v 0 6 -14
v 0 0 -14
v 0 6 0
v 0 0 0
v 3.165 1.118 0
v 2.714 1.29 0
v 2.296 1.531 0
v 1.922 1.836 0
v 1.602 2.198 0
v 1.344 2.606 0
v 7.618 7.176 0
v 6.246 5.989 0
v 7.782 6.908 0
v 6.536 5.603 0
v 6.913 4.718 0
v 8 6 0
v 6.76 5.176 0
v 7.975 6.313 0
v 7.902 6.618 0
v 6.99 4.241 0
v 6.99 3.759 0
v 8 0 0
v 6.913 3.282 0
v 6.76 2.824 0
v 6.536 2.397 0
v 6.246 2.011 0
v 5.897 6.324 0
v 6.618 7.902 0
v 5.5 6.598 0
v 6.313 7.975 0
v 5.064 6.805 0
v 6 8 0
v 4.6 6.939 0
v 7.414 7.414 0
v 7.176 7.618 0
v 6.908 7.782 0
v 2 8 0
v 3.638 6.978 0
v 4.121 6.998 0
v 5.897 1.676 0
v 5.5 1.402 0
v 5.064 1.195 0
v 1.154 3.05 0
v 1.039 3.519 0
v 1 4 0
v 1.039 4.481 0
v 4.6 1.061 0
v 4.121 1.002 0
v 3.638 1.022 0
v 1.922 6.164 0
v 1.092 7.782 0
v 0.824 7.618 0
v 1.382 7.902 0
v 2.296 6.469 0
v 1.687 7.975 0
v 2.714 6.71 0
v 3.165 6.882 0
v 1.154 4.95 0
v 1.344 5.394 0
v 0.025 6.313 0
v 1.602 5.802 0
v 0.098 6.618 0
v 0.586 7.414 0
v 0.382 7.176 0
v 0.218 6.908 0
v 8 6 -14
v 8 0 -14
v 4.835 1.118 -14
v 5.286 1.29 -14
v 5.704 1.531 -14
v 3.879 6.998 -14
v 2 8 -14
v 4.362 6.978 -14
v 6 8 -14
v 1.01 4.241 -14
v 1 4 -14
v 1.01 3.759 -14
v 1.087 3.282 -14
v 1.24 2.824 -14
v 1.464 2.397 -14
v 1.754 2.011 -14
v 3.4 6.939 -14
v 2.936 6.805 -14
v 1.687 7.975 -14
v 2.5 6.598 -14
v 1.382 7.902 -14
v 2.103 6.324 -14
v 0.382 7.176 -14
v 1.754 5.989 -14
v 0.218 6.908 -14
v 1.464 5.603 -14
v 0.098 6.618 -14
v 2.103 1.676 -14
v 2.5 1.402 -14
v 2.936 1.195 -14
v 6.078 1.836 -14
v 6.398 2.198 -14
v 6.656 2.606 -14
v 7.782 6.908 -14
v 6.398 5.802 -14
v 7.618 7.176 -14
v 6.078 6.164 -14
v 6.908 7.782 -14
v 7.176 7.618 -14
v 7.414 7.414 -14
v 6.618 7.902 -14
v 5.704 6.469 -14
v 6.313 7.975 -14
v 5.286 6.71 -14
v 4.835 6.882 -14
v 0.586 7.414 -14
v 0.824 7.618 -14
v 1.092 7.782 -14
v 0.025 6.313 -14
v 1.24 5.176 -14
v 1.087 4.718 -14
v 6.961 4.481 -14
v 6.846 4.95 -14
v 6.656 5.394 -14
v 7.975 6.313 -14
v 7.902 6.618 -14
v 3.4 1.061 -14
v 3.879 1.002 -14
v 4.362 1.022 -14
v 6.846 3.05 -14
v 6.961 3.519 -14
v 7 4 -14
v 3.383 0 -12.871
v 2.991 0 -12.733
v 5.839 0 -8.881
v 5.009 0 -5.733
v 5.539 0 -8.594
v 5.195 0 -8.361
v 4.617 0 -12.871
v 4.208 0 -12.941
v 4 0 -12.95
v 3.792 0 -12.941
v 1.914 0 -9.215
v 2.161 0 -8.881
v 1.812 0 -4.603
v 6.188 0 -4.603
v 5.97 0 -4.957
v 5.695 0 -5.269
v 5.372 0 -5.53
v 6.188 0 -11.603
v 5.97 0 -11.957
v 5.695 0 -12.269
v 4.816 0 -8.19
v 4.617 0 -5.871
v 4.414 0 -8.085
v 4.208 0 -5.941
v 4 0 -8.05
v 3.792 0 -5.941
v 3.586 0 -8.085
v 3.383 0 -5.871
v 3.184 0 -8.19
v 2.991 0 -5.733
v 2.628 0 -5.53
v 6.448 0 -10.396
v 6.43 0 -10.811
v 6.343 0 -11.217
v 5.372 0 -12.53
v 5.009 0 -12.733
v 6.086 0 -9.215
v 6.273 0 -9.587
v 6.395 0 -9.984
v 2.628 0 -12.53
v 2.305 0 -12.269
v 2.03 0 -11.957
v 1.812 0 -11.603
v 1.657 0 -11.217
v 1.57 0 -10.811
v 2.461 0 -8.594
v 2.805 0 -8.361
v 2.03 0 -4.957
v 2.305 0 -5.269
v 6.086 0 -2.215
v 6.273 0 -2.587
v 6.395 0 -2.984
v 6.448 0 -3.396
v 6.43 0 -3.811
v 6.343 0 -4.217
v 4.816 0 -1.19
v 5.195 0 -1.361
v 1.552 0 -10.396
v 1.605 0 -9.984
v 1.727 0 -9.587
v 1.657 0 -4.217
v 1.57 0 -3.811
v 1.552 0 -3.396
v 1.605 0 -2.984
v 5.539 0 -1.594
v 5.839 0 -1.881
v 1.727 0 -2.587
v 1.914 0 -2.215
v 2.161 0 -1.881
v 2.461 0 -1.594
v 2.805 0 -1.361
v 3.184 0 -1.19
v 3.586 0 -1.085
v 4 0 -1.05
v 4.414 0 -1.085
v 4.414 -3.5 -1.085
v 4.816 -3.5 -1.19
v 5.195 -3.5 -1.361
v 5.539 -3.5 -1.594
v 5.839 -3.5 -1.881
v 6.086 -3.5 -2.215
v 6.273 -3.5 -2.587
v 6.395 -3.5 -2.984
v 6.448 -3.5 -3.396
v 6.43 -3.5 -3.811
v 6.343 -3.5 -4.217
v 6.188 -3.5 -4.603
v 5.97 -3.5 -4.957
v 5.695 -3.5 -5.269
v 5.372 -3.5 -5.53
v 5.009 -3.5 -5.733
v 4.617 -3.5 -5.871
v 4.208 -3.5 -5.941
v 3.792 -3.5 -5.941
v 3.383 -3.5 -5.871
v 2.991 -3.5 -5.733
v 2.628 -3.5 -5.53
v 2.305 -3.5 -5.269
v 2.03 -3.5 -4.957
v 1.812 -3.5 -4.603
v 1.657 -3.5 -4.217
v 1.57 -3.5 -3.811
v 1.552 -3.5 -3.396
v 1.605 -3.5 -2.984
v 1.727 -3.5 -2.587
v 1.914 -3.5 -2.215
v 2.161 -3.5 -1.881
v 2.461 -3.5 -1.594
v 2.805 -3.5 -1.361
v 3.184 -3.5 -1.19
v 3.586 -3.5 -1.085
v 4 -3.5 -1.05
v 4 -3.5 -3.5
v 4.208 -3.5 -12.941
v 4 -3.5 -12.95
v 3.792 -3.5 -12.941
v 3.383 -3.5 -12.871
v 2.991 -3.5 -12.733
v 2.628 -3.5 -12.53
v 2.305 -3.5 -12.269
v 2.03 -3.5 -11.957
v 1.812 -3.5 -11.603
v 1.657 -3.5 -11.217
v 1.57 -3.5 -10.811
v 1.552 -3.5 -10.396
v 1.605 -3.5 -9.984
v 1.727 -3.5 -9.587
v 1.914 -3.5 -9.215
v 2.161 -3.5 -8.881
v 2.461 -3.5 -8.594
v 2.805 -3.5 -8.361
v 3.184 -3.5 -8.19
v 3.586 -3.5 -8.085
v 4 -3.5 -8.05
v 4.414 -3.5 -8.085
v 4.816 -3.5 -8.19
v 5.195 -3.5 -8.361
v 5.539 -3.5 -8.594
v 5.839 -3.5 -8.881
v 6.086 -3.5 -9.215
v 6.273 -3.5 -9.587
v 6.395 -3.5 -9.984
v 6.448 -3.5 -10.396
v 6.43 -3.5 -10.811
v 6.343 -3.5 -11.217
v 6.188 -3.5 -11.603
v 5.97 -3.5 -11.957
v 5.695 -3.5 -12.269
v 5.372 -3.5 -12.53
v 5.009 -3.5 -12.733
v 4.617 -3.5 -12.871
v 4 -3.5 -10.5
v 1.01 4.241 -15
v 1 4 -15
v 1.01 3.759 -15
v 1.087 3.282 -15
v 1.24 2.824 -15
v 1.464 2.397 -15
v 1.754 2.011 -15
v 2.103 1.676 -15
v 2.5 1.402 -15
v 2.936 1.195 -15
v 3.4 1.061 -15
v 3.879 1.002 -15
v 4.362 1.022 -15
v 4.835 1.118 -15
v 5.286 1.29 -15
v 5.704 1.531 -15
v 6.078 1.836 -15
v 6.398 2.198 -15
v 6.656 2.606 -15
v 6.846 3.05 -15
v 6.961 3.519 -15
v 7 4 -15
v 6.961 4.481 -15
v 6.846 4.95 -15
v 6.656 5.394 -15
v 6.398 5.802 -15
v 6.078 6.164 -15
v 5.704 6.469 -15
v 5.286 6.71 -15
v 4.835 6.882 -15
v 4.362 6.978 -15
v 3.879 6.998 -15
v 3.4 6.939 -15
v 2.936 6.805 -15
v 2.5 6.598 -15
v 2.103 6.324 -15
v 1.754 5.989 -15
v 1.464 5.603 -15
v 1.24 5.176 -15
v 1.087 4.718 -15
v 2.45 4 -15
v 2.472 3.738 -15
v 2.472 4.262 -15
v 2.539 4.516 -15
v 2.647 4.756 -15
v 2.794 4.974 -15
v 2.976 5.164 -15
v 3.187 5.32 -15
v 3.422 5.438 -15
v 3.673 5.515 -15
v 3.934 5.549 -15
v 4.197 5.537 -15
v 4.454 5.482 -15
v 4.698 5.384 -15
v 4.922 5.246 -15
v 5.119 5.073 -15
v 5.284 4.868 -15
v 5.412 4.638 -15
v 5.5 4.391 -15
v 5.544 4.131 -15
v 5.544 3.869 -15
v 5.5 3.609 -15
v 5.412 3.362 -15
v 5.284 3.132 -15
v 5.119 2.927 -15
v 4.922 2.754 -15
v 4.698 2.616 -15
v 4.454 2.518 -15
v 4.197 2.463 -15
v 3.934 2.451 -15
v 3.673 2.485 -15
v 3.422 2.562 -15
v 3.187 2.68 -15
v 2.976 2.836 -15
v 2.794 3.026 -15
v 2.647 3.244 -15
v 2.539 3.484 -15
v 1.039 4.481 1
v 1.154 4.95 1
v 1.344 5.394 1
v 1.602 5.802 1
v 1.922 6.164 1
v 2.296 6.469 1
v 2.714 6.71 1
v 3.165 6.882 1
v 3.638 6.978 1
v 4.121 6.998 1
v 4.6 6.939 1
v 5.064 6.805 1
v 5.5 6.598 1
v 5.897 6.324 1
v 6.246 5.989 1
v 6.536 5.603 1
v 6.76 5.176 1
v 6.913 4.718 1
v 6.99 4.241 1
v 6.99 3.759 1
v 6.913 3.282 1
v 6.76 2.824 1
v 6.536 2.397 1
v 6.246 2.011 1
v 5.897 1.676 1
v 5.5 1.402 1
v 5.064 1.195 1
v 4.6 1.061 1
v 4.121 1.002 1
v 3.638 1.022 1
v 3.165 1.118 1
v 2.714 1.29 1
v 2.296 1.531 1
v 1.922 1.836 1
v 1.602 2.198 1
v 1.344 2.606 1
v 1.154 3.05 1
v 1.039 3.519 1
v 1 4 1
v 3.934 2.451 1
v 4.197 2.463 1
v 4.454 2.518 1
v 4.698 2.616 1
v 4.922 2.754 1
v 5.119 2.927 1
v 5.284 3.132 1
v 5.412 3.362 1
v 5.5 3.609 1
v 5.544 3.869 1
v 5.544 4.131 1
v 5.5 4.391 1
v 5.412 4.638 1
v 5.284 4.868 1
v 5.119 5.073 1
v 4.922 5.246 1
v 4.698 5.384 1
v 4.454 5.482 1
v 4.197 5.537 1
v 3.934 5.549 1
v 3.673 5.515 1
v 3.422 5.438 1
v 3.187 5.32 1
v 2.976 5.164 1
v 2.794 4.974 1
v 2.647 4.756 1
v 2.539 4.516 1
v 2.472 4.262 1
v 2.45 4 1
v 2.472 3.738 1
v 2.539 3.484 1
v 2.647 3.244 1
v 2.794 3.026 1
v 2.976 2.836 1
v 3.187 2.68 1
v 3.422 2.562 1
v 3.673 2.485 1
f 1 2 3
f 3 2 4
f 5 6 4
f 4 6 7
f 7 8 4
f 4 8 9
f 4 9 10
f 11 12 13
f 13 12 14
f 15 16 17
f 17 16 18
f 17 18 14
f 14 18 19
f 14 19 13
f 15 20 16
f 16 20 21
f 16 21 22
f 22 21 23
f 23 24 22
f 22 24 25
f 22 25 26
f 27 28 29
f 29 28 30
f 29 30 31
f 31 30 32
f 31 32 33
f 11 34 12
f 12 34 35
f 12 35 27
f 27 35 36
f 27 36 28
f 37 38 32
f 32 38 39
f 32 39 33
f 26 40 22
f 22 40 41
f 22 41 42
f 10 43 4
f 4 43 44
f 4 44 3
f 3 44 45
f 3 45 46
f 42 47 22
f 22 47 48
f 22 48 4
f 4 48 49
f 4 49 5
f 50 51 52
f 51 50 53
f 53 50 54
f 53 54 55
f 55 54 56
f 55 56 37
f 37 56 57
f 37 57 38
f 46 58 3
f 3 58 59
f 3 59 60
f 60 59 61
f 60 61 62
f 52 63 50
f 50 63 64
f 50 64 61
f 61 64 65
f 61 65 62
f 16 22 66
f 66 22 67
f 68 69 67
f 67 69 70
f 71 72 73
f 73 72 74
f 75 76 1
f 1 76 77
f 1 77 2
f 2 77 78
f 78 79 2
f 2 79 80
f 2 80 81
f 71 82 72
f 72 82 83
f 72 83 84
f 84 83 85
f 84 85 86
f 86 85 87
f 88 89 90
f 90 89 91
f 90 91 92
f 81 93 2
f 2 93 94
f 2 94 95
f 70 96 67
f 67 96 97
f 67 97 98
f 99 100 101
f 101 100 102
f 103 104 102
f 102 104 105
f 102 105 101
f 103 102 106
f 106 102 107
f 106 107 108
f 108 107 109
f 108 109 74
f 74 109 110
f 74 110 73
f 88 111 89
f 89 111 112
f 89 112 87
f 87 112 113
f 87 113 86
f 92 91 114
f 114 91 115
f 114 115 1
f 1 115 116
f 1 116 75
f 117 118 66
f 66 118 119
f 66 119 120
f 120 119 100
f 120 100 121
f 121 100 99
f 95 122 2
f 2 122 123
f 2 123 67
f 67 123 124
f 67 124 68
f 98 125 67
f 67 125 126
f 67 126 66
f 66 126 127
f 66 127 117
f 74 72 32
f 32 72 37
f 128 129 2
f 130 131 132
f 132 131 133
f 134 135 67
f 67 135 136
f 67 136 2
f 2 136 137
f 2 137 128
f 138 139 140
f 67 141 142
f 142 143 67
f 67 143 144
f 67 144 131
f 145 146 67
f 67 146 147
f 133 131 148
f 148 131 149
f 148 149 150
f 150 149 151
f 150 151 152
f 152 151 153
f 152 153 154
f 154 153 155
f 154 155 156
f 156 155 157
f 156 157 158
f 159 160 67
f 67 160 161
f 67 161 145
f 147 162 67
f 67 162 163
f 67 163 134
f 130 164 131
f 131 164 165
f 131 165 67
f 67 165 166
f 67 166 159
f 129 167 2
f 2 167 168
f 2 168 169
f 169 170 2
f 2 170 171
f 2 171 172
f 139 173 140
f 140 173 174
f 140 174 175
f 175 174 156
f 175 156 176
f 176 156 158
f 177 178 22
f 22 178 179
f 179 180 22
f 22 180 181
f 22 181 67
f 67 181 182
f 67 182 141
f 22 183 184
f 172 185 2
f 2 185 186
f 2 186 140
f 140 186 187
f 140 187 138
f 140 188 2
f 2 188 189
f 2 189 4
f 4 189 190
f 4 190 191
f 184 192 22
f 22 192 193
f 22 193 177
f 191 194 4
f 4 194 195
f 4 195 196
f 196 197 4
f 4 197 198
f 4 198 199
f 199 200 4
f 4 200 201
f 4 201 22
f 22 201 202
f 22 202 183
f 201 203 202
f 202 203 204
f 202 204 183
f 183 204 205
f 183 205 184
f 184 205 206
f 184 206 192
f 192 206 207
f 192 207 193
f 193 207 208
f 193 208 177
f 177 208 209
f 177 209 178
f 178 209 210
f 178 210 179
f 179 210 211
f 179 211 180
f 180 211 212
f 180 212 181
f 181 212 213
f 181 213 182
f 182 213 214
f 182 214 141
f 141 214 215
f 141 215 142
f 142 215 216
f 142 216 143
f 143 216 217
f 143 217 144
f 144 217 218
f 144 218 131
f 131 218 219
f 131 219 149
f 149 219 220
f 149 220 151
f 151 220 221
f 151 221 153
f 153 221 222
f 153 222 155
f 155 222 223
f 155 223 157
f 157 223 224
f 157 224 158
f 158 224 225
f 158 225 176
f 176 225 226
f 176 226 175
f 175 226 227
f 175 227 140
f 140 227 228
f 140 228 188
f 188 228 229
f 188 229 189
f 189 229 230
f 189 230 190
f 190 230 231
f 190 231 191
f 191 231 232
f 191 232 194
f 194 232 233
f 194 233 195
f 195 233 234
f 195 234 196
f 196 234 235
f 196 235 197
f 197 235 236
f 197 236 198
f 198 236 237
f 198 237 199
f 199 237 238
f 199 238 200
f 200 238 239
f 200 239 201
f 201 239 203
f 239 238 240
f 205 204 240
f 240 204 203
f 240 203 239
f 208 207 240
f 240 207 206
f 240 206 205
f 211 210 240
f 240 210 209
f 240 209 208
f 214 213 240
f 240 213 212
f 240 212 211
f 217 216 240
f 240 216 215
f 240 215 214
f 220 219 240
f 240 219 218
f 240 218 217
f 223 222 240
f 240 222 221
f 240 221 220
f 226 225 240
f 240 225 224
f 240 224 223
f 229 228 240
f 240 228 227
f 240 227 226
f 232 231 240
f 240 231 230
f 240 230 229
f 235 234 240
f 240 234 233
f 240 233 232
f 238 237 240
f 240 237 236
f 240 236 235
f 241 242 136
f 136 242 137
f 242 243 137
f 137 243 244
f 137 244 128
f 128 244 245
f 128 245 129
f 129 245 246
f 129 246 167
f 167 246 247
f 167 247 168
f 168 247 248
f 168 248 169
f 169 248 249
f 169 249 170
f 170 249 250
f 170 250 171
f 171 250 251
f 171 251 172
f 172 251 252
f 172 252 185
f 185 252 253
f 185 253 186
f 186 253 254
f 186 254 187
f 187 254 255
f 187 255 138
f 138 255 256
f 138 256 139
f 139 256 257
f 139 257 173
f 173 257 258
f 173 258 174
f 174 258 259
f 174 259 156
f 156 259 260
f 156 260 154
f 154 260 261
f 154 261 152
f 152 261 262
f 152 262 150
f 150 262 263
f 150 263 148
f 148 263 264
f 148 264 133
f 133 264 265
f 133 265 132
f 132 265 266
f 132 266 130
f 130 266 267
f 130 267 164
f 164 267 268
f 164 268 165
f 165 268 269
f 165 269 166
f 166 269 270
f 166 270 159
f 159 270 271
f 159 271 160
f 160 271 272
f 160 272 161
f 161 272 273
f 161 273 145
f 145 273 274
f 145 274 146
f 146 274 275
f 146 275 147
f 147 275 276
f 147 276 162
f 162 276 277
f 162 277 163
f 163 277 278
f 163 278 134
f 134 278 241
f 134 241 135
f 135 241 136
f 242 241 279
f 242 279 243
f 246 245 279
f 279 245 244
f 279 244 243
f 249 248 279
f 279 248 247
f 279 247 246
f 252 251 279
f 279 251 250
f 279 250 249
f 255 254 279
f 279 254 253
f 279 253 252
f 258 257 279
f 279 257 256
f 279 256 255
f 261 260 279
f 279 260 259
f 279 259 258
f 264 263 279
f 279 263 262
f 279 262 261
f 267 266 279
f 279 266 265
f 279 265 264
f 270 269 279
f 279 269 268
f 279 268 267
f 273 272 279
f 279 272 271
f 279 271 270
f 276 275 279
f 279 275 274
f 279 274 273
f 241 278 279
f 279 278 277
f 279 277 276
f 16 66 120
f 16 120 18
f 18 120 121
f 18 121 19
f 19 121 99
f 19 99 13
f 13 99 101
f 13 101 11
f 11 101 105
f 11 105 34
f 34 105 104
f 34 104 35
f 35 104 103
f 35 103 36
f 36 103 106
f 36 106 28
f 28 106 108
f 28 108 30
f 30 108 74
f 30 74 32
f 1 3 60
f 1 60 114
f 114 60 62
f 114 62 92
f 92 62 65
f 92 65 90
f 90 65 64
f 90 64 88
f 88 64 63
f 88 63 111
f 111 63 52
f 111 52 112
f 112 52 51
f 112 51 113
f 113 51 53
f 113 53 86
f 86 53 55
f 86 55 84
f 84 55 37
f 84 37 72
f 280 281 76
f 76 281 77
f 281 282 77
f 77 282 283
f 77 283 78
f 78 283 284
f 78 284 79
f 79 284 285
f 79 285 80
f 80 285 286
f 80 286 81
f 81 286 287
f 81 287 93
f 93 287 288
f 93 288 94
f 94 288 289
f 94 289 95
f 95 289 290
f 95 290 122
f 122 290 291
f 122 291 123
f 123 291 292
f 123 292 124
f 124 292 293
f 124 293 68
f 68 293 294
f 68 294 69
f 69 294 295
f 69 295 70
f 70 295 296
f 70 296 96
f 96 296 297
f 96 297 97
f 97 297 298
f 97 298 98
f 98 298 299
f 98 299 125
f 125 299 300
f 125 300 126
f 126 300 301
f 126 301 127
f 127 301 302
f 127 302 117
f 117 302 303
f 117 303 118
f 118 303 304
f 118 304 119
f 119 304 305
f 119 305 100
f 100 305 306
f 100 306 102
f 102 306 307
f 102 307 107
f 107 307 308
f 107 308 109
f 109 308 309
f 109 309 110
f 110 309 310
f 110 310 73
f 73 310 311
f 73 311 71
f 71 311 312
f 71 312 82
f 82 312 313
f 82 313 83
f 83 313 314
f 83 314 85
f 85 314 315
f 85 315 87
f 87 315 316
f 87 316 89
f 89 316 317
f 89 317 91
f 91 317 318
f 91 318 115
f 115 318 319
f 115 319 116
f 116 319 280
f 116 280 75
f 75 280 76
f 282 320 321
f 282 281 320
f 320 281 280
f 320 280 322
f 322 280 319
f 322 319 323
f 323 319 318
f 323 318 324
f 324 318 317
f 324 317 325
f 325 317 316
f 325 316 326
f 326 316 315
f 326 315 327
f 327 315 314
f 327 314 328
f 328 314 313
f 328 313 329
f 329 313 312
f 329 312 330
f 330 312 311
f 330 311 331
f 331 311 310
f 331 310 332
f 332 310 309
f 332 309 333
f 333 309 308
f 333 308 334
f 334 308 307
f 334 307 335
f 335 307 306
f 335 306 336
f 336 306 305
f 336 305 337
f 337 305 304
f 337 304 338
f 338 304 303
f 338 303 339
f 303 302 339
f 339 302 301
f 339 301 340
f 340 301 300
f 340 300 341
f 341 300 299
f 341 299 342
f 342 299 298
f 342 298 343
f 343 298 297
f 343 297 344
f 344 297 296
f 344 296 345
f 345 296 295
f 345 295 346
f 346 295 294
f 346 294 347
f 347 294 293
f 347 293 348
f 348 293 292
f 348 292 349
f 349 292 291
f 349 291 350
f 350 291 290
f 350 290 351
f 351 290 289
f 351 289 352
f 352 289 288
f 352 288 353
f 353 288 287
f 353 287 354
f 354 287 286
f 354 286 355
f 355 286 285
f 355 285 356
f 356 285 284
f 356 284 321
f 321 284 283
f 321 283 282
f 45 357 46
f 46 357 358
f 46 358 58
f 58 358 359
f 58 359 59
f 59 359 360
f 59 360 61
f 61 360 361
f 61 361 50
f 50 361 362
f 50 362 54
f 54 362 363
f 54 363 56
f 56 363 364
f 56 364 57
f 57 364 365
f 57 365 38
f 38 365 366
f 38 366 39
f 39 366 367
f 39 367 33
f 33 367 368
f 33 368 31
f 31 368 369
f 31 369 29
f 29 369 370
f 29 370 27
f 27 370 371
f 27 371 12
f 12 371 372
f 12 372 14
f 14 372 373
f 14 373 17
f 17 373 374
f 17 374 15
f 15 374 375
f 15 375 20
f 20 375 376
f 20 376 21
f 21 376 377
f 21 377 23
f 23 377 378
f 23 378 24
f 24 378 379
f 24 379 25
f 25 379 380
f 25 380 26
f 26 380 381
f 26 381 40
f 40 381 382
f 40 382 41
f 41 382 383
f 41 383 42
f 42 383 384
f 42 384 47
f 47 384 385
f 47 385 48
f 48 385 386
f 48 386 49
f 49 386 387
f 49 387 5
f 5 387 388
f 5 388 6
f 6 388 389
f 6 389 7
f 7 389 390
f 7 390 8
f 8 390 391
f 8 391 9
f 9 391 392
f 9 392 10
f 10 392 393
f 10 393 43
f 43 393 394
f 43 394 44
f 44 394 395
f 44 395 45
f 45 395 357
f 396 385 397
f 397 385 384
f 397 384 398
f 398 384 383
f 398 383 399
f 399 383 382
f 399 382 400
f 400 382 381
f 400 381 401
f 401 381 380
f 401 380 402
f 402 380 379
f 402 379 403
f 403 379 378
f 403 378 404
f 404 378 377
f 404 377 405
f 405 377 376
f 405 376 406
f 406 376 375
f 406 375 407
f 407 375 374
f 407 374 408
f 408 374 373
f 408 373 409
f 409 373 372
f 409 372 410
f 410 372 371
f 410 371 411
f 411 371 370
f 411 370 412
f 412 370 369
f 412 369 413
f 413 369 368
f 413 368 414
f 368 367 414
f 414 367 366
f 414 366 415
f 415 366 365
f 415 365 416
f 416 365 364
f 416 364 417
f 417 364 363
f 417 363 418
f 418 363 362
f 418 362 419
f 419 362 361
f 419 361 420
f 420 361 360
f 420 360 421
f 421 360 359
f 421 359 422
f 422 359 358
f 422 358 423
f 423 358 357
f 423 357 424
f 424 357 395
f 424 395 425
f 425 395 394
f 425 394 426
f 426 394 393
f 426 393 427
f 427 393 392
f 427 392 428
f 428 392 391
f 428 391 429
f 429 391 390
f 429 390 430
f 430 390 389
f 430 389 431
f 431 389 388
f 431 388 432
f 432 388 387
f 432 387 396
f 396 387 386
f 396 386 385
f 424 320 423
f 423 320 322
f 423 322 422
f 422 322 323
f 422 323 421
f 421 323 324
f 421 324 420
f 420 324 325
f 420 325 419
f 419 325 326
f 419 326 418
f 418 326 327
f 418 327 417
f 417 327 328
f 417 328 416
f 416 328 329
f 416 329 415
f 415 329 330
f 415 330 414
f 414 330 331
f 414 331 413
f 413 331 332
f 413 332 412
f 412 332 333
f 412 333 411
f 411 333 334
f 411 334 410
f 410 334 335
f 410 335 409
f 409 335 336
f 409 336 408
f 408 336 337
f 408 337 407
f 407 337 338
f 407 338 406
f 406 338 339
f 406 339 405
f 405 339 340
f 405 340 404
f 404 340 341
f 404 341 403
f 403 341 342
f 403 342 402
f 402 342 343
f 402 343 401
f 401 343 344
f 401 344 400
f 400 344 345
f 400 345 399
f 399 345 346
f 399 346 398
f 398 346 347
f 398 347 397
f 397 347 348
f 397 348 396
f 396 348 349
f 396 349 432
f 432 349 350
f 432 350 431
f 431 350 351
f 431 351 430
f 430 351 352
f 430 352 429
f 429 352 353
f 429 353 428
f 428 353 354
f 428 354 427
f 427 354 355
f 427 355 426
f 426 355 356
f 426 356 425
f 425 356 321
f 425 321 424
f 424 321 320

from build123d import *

# Parameters (mm, degrees)
SKETCH1_W           = 8
SKETCH1_H           = 14
BOSS_EXTRUDE1_DEPTH = 8
SKETCH2_R           = 2.45
BOSS_EXTRUDE2_DEPTH = 3.5
FILLET1_R           = 2
SKETCH5_R           = 3
BOSS_EXTRUDE3_DEPTH = 1
SKETCH6_R           = 1.55
CUT_EXTRUDE1_DEPTH  = 20.595917942


with BuildPart() as part:
    # Sketch1 → Boss-Extrude1 (new body)
    with BuildSketch(Plane(origin=(0, 0, 0), x_dir=(1, 0, 0), z_dir=(0, 1, 0))):
        with Locations((4, 7)):
            Rectangle(SKETCH1_W, SKETCH1_H)
    extrude(amount=BOSS_EXTRUDE1_DEPTH)

    # Sketch2 → Boss-Extrude2 (add)
    with BuildSketch(Plane.XZ):
        with Locations(Location((4, -10.5, 0), (0, 0, 270))):
            Circle(SKETCH2_R)
        with Locations(Location((4, -3.5, 0), (0, 0, 90))):
            Circle(SKETCH2_R)
    extrude(amount=BOSS_EXTRUDE2_DEPTH)

    # Fillet1
    fillet1_edges = [part.edges().sort_by_distance(p)[0] for p in [
        (8, 8, -7),
        (0, 8, -7),
    ]]
    fillet(fillet1_edges, radius=FILLET1_R)

    # Sketch5 → Boss-Extrude3 (add)
    with BuildSketch(Plane(origin=(0, 0, -14), x_dir=(-1, 0, 0), z_dir=(0, 0, -1))):
        with Locations((-4, 4)):
            Circle(SKETCH5_R)
    boss_extrude3 = extrude(amount=BOSS_EXTRUDE3_DEPTH)

    # Mirror1: Boss-Extrude3 across plane
    add(boss_extrude3.mirror(Plane(origin=(0, 0, -7), x_dir=(1, 0, 0), z_dir=(0, 0, -1))))

    # Sketch6 → Cut-Extrude1 (cut, through all)
    with BuildSketch(Plane(origin=(0, 0, -15), x_dir=(-1, 0, 0), z_dir=(0, 0, -1))):
        with Locations((-4, 4)):
            Circle(SKETCH6_R)
    extrude(amount=-CUT_EXTRUDE1_DEPTH, mode=Mode.SUBTRACT)


solid = part.part
